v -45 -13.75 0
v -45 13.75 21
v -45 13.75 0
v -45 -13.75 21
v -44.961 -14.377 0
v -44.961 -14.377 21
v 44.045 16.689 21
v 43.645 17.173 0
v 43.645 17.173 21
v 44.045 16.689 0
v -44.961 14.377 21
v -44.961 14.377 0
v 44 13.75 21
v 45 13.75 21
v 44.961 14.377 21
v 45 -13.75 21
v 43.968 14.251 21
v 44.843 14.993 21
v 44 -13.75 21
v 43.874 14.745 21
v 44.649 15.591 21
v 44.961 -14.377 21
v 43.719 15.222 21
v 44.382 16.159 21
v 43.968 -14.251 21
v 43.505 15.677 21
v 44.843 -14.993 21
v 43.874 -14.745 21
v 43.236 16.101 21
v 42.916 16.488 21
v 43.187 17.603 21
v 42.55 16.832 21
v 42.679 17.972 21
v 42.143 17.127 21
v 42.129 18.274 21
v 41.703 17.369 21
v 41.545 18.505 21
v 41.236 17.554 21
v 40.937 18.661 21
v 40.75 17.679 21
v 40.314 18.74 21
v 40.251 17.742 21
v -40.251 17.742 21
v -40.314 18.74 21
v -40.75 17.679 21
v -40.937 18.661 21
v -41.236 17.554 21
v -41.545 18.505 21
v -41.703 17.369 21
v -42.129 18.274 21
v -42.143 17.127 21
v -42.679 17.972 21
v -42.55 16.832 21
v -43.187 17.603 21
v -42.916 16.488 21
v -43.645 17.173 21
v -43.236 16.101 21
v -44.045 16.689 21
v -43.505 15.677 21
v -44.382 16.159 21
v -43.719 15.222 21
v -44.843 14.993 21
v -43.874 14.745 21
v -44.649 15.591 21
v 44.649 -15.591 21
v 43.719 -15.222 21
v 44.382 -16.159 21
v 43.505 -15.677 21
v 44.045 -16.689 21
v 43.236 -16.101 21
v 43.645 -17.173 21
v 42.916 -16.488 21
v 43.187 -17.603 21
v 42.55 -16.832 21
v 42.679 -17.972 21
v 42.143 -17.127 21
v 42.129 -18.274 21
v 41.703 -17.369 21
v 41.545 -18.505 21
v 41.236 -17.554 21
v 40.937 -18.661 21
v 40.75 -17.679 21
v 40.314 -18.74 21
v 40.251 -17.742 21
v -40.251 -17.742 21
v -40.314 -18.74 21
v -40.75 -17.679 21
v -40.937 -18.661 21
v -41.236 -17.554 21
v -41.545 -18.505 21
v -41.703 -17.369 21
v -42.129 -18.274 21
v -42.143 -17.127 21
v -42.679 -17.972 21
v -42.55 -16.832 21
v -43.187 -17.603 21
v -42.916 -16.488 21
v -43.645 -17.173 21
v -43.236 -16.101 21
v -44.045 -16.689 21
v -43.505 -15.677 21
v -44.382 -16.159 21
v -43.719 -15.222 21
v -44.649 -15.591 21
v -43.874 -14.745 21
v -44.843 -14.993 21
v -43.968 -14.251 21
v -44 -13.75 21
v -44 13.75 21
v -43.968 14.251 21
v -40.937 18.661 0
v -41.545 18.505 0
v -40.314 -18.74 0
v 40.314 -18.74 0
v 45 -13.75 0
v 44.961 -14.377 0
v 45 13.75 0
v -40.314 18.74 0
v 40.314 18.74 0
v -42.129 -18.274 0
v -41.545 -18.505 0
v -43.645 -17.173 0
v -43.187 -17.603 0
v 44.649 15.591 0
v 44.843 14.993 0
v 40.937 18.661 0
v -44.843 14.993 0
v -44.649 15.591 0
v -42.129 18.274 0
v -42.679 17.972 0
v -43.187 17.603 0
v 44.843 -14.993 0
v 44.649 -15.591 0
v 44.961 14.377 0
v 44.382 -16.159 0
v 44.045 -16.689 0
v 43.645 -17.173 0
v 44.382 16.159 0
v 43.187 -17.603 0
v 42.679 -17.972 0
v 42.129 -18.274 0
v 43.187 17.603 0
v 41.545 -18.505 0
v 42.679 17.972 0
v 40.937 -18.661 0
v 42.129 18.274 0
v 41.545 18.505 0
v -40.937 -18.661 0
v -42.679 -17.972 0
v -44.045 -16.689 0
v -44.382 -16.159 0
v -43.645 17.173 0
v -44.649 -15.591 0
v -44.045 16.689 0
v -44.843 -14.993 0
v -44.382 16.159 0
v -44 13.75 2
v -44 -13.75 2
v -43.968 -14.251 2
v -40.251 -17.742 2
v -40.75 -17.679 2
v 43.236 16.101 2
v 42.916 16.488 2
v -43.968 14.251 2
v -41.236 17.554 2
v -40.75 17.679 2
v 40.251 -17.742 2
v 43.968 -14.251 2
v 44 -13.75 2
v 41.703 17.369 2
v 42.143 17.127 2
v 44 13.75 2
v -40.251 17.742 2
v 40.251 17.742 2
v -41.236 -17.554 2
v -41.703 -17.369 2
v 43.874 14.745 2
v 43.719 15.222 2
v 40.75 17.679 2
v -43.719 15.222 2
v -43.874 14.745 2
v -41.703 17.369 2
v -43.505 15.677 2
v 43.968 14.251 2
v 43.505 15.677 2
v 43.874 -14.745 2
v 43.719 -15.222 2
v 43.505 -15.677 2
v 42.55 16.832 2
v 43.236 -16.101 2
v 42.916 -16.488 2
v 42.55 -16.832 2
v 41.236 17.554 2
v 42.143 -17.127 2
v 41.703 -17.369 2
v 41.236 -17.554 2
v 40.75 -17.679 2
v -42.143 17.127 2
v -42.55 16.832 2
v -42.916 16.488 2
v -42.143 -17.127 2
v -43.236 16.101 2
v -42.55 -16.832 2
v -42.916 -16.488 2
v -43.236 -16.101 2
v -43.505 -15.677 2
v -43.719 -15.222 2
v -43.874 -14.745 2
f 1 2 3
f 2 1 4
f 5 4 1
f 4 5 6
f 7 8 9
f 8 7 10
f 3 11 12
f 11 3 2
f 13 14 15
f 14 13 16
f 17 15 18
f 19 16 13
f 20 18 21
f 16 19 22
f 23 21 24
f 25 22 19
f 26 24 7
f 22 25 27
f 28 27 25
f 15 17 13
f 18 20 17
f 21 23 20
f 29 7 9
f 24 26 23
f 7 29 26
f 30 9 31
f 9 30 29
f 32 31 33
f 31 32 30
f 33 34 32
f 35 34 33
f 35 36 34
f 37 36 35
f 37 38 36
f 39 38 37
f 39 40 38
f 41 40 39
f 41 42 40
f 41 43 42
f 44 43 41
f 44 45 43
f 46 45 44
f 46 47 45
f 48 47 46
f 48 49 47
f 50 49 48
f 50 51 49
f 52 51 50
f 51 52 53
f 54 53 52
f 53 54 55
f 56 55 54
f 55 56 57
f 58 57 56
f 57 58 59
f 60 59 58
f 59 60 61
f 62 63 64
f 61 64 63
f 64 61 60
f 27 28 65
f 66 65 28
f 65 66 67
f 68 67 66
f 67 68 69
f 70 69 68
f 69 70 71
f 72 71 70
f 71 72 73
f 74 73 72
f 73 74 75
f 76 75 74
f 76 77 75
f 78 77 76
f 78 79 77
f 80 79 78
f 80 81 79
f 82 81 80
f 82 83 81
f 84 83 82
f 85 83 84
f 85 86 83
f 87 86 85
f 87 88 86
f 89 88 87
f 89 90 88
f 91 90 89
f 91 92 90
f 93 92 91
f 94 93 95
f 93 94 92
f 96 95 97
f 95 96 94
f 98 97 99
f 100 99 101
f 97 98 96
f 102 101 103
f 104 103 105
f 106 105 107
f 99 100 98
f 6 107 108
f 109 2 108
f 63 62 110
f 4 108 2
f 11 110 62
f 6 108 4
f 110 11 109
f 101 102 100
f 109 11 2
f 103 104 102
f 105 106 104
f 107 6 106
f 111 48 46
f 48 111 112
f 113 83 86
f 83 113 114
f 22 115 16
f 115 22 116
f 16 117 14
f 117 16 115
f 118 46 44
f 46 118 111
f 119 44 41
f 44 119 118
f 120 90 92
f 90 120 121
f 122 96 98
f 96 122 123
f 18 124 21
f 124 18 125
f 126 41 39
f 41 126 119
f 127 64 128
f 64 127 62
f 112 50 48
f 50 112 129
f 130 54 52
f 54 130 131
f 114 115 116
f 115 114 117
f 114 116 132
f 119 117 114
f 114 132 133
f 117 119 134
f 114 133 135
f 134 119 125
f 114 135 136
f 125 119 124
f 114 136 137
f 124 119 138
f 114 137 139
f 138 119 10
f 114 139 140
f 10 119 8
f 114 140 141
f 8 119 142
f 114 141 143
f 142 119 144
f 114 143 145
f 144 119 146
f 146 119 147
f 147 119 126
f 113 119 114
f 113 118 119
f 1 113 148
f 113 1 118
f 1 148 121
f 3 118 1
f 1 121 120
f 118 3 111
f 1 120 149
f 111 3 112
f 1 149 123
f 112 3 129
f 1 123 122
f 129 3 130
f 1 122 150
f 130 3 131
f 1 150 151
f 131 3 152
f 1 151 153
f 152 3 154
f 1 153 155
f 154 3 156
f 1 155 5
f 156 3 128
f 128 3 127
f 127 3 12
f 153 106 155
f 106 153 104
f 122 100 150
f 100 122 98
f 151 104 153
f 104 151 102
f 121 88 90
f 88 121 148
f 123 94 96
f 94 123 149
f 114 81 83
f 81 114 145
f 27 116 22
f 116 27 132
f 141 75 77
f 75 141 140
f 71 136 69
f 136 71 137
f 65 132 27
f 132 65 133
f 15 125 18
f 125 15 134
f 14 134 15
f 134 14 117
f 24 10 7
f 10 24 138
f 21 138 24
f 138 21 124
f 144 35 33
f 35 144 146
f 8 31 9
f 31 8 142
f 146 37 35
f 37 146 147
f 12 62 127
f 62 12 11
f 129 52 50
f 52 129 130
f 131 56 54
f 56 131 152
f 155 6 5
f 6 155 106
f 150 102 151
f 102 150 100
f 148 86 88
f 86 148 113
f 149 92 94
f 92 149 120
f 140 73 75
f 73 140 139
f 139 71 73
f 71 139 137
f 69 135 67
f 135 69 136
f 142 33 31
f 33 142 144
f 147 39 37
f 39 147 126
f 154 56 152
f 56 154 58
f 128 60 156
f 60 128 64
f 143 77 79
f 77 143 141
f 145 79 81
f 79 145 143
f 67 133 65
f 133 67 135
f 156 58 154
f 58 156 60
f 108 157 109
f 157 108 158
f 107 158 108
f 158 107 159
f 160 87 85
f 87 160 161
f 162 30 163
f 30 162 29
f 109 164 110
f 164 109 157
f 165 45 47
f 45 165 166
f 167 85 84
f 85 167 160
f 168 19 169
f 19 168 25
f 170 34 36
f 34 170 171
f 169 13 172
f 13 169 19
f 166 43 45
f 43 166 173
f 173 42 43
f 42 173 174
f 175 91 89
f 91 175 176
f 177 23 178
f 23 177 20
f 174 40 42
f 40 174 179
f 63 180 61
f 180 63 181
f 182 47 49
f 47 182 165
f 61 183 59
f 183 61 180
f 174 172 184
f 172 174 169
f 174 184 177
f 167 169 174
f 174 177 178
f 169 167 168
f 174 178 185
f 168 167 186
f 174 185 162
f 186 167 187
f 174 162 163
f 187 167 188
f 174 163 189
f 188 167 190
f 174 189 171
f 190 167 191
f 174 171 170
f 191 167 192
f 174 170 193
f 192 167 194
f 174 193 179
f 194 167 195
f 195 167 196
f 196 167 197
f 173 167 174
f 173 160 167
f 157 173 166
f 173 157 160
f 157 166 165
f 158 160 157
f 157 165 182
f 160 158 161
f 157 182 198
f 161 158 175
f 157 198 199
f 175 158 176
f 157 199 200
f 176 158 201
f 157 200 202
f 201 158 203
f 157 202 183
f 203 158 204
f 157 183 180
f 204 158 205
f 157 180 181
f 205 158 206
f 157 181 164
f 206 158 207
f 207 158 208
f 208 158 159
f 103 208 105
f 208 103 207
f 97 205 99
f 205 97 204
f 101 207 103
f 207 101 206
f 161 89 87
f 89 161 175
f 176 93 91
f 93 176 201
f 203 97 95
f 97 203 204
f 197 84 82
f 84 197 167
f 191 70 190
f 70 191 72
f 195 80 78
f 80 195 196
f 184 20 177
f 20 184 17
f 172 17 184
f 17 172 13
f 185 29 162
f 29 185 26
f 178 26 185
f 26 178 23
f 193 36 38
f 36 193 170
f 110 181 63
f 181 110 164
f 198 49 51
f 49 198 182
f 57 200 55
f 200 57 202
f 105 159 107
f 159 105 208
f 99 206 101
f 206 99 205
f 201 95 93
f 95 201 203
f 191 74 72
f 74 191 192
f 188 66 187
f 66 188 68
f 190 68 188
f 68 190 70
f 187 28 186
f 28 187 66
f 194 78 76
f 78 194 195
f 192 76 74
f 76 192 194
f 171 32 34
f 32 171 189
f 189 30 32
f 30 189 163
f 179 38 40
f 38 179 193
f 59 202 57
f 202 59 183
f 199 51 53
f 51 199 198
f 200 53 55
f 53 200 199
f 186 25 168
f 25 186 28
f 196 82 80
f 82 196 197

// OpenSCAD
$fn = 50;


difference() {
	union() {
		hull() {
			translate(v = [-40.0000000000, 13.7500000000, 0]) {
				cylinder(h = 21, r = 5);
			}
			translate(v = [40.0000000000, 13.7500000000, 0]) {
				cylinder(h = 21, r = 5);
			}
			translate(v = [-40.0000000000, -13.7500000000, 0]) {
				cylinder(h = 21, r = 5);
			}
			translate(v = [40.0000000000, -13.7500000000, 0]) {
				cylinder(h = 21, r = 5);
			}
		}
	}
	union() {
		translate(v = [0, 0, 2]) {
			hull() {
				translate(v = [-40.0000000000, 13.7500000000, 0]) {
					cylinder(h = 19, r = 4);
				}
				translate(v = [40.0000000000, 13.7500000000, 0]) {
					cylinder(h = 19, r = 4);
				}
				translate(v = [-40.0000000000, -13.7500000000, 0]) {
					cylinder(h = 19, r = 4);
				}
				translate(v = [40.0000000000, -13.7500000000, 0]) {
					cylinder(h = 19, r = 4);
				}
			}
		}
	}
}
